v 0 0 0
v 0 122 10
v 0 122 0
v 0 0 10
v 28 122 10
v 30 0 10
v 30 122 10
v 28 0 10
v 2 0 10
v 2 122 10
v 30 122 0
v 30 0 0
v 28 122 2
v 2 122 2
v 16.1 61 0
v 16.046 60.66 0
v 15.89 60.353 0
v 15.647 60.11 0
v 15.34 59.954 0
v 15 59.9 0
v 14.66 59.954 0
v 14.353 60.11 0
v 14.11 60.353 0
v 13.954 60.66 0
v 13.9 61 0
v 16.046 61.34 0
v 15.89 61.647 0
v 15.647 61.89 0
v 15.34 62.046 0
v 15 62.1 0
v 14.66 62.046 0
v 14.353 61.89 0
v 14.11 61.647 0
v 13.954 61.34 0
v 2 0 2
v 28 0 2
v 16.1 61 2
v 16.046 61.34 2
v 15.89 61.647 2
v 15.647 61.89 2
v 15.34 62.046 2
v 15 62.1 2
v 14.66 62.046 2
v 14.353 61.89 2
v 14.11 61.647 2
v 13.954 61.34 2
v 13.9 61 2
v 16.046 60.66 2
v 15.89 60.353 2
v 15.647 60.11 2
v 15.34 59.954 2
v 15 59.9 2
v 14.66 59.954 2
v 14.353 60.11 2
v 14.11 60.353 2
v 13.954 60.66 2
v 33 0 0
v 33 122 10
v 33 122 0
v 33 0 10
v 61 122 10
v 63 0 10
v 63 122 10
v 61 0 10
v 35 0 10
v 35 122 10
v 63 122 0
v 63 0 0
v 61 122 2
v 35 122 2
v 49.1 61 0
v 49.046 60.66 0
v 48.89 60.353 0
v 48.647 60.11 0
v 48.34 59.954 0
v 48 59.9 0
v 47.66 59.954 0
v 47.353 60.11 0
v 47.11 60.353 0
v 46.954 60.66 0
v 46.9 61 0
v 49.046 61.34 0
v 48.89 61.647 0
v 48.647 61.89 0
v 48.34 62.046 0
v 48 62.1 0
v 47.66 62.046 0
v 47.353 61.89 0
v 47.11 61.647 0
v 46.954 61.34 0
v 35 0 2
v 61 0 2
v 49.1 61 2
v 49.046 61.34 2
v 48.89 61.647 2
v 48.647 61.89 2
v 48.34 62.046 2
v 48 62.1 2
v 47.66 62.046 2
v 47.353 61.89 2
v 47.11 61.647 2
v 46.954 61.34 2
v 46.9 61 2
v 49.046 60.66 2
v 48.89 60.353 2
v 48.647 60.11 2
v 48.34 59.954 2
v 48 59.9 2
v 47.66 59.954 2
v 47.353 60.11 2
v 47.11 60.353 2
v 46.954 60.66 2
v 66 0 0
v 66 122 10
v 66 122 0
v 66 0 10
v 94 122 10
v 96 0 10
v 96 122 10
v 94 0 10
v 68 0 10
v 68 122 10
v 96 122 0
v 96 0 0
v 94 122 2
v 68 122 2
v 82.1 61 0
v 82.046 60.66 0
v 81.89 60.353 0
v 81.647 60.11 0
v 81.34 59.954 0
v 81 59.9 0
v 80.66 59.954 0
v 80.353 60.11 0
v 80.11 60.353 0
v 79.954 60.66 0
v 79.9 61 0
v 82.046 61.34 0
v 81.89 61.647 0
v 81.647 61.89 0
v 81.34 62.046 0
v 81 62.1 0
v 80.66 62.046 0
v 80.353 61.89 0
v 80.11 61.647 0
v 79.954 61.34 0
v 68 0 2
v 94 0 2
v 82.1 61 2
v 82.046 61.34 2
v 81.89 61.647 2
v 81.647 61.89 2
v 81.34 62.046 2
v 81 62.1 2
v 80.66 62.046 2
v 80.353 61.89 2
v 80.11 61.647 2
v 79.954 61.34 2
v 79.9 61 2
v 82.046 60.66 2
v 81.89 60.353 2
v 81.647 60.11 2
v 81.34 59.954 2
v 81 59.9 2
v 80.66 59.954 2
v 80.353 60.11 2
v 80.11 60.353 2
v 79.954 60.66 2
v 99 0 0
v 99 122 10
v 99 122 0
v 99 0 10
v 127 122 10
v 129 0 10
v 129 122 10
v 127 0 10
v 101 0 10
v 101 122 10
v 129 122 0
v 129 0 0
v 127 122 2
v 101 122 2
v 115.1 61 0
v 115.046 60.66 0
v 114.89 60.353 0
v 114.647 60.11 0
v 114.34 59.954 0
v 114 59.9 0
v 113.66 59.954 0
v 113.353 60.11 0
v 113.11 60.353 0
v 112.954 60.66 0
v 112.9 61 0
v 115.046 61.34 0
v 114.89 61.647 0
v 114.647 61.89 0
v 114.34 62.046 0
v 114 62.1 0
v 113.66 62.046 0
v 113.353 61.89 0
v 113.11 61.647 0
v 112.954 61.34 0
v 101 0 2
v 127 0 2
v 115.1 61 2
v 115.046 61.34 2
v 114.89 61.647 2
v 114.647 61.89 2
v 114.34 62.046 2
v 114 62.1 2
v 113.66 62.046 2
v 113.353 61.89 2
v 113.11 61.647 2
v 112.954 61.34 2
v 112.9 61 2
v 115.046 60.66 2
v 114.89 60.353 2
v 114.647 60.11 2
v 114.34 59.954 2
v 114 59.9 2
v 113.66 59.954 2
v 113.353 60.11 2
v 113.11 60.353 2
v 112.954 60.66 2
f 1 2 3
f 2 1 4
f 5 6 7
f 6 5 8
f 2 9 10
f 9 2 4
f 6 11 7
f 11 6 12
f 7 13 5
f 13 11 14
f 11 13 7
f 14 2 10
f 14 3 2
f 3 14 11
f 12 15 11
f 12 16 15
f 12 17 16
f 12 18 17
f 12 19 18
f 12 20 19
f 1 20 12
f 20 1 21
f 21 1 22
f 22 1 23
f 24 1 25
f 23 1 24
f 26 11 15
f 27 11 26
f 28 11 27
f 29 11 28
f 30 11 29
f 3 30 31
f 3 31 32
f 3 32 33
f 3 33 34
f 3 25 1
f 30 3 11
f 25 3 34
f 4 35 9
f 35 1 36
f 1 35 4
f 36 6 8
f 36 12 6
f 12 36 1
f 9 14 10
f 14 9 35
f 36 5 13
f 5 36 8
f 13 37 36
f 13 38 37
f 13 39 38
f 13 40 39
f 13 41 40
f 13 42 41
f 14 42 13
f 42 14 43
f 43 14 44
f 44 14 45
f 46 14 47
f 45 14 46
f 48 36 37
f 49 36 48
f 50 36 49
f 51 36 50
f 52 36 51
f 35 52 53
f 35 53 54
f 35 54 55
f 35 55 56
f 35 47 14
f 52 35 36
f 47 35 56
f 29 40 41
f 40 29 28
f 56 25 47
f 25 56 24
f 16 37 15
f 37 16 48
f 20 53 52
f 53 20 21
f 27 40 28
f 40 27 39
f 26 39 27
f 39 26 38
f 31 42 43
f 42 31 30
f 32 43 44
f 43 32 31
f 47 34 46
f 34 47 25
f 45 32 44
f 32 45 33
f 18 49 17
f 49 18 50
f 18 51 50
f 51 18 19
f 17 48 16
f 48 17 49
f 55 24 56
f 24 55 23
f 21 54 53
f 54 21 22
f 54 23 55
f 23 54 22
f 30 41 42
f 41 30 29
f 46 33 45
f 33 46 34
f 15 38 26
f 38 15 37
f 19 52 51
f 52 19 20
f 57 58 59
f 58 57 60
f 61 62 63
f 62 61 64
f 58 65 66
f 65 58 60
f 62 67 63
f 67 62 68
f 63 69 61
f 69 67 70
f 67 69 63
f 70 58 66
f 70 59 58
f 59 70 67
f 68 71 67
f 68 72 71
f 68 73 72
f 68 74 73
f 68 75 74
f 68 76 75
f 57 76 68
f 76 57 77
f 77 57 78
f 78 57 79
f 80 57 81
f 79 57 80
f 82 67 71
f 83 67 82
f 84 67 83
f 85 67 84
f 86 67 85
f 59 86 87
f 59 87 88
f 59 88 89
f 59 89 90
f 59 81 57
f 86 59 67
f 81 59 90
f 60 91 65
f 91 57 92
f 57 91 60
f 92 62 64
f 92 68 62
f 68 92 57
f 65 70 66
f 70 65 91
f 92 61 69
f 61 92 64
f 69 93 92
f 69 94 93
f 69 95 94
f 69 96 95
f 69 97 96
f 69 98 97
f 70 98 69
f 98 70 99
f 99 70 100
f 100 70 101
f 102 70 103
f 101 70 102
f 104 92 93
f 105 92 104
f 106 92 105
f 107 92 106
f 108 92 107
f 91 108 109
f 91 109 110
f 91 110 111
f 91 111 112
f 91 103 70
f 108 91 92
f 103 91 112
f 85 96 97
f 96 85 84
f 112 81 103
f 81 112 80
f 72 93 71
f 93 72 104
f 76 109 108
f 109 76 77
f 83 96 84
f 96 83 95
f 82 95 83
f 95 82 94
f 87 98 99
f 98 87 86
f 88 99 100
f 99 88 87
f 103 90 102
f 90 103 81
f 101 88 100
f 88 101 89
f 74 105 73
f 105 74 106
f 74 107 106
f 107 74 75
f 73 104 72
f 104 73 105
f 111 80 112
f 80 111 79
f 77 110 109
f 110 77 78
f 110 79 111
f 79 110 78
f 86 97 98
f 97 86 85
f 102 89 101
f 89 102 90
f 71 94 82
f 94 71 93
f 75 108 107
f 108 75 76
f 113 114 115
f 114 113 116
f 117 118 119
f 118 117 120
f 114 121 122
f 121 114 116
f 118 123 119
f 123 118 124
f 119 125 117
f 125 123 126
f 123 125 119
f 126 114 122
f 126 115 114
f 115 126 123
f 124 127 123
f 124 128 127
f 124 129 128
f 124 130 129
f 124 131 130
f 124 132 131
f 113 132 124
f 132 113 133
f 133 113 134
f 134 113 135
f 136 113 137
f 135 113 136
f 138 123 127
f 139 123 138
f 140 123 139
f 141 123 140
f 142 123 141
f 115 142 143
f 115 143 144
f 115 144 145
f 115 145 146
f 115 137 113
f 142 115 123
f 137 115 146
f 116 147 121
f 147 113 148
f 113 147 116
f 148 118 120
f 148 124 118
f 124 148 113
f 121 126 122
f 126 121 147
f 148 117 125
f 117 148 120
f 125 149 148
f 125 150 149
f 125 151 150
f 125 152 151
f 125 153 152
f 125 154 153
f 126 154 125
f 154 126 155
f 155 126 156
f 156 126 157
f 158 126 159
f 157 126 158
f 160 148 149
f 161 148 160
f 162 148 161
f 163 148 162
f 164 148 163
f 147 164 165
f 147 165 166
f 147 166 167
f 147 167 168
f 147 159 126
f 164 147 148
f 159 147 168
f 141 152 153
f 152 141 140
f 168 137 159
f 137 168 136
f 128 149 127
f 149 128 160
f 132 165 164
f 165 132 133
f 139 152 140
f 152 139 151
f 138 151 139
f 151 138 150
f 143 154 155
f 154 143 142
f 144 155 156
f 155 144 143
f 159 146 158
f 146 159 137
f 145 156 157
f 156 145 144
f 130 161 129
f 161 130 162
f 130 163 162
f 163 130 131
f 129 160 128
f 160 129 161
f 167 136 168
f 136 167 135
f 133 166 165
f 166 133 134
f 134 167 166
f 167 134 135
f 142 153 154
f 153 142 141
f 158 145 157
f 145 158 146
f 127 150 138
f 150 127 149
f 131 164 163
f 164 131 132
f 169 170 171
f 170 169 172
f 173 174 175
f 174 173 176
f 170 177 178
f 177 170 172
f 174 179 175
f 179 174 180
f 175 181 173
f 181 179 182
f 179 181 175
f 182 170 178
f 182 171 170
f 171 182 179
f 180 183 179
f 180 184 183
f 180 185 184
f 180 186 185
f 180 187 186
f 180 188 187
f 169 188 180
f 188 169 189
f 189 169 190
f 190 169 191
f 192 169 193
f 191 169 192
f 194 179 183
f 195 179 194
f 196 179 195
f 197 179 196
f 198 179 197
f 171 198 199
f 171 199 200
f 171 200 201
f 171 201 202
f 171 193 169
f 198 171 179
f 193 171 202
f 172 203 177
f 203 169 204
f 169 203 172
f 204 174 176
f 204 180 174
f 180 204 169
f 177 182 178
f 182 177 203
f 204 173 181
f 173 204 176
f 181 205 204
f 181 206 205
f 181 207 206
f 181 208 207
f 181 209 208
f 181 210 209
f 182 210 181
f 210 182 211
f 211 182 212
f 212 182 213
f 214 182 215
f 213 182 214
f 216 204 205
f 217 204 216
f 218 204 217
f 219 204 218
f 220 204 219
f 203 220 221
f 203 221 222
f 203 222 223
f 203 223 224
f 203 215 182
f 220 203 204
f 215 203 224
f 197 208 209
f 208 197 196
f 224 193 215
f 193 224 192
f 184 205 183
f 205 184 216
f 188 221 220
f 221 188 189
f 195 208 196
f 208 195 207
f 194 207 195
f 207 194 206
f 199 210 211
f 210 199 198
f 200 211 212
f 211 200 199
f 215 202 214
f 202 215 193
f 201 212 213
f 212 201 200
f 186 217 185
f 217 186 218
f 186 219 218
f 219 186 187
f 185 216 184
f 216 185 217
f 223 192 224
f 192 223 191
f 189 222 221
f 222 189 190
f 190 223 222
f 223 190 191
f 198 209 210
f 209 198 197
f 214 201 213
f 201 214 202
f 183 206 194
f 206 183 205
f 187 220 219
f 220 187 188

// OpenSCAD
// ============================================================
// PRINT: TRILHOS HEPA (Posição 4 — X=155mm)
// 4 peças idênticas — canal 26mm (filtro 25mm + folga)
// Mesa: 132mm × 122mm — cabe na Ender 3 (200×200mm) ✓
// Tempo estimado: ~1h30
// ============================================================
// 1 filtro × 2 laterais × 2 metades = 4 peças
// ============================================================

use <TRILHO_FILTRO.scad>

gap = 3;
canal = 26;
largura = canal + 2*2; // 30mm

// 4 peças lado a lado em X
for (i = [0:3]) {
    translate([i * (largura + gap), 0, 0])
        trilho_metade_a(canal);
}

// Guia visual da mesa (não imprime)
%translate([0, 0, -0.5])
    cube([200, 200, 0.1]);
